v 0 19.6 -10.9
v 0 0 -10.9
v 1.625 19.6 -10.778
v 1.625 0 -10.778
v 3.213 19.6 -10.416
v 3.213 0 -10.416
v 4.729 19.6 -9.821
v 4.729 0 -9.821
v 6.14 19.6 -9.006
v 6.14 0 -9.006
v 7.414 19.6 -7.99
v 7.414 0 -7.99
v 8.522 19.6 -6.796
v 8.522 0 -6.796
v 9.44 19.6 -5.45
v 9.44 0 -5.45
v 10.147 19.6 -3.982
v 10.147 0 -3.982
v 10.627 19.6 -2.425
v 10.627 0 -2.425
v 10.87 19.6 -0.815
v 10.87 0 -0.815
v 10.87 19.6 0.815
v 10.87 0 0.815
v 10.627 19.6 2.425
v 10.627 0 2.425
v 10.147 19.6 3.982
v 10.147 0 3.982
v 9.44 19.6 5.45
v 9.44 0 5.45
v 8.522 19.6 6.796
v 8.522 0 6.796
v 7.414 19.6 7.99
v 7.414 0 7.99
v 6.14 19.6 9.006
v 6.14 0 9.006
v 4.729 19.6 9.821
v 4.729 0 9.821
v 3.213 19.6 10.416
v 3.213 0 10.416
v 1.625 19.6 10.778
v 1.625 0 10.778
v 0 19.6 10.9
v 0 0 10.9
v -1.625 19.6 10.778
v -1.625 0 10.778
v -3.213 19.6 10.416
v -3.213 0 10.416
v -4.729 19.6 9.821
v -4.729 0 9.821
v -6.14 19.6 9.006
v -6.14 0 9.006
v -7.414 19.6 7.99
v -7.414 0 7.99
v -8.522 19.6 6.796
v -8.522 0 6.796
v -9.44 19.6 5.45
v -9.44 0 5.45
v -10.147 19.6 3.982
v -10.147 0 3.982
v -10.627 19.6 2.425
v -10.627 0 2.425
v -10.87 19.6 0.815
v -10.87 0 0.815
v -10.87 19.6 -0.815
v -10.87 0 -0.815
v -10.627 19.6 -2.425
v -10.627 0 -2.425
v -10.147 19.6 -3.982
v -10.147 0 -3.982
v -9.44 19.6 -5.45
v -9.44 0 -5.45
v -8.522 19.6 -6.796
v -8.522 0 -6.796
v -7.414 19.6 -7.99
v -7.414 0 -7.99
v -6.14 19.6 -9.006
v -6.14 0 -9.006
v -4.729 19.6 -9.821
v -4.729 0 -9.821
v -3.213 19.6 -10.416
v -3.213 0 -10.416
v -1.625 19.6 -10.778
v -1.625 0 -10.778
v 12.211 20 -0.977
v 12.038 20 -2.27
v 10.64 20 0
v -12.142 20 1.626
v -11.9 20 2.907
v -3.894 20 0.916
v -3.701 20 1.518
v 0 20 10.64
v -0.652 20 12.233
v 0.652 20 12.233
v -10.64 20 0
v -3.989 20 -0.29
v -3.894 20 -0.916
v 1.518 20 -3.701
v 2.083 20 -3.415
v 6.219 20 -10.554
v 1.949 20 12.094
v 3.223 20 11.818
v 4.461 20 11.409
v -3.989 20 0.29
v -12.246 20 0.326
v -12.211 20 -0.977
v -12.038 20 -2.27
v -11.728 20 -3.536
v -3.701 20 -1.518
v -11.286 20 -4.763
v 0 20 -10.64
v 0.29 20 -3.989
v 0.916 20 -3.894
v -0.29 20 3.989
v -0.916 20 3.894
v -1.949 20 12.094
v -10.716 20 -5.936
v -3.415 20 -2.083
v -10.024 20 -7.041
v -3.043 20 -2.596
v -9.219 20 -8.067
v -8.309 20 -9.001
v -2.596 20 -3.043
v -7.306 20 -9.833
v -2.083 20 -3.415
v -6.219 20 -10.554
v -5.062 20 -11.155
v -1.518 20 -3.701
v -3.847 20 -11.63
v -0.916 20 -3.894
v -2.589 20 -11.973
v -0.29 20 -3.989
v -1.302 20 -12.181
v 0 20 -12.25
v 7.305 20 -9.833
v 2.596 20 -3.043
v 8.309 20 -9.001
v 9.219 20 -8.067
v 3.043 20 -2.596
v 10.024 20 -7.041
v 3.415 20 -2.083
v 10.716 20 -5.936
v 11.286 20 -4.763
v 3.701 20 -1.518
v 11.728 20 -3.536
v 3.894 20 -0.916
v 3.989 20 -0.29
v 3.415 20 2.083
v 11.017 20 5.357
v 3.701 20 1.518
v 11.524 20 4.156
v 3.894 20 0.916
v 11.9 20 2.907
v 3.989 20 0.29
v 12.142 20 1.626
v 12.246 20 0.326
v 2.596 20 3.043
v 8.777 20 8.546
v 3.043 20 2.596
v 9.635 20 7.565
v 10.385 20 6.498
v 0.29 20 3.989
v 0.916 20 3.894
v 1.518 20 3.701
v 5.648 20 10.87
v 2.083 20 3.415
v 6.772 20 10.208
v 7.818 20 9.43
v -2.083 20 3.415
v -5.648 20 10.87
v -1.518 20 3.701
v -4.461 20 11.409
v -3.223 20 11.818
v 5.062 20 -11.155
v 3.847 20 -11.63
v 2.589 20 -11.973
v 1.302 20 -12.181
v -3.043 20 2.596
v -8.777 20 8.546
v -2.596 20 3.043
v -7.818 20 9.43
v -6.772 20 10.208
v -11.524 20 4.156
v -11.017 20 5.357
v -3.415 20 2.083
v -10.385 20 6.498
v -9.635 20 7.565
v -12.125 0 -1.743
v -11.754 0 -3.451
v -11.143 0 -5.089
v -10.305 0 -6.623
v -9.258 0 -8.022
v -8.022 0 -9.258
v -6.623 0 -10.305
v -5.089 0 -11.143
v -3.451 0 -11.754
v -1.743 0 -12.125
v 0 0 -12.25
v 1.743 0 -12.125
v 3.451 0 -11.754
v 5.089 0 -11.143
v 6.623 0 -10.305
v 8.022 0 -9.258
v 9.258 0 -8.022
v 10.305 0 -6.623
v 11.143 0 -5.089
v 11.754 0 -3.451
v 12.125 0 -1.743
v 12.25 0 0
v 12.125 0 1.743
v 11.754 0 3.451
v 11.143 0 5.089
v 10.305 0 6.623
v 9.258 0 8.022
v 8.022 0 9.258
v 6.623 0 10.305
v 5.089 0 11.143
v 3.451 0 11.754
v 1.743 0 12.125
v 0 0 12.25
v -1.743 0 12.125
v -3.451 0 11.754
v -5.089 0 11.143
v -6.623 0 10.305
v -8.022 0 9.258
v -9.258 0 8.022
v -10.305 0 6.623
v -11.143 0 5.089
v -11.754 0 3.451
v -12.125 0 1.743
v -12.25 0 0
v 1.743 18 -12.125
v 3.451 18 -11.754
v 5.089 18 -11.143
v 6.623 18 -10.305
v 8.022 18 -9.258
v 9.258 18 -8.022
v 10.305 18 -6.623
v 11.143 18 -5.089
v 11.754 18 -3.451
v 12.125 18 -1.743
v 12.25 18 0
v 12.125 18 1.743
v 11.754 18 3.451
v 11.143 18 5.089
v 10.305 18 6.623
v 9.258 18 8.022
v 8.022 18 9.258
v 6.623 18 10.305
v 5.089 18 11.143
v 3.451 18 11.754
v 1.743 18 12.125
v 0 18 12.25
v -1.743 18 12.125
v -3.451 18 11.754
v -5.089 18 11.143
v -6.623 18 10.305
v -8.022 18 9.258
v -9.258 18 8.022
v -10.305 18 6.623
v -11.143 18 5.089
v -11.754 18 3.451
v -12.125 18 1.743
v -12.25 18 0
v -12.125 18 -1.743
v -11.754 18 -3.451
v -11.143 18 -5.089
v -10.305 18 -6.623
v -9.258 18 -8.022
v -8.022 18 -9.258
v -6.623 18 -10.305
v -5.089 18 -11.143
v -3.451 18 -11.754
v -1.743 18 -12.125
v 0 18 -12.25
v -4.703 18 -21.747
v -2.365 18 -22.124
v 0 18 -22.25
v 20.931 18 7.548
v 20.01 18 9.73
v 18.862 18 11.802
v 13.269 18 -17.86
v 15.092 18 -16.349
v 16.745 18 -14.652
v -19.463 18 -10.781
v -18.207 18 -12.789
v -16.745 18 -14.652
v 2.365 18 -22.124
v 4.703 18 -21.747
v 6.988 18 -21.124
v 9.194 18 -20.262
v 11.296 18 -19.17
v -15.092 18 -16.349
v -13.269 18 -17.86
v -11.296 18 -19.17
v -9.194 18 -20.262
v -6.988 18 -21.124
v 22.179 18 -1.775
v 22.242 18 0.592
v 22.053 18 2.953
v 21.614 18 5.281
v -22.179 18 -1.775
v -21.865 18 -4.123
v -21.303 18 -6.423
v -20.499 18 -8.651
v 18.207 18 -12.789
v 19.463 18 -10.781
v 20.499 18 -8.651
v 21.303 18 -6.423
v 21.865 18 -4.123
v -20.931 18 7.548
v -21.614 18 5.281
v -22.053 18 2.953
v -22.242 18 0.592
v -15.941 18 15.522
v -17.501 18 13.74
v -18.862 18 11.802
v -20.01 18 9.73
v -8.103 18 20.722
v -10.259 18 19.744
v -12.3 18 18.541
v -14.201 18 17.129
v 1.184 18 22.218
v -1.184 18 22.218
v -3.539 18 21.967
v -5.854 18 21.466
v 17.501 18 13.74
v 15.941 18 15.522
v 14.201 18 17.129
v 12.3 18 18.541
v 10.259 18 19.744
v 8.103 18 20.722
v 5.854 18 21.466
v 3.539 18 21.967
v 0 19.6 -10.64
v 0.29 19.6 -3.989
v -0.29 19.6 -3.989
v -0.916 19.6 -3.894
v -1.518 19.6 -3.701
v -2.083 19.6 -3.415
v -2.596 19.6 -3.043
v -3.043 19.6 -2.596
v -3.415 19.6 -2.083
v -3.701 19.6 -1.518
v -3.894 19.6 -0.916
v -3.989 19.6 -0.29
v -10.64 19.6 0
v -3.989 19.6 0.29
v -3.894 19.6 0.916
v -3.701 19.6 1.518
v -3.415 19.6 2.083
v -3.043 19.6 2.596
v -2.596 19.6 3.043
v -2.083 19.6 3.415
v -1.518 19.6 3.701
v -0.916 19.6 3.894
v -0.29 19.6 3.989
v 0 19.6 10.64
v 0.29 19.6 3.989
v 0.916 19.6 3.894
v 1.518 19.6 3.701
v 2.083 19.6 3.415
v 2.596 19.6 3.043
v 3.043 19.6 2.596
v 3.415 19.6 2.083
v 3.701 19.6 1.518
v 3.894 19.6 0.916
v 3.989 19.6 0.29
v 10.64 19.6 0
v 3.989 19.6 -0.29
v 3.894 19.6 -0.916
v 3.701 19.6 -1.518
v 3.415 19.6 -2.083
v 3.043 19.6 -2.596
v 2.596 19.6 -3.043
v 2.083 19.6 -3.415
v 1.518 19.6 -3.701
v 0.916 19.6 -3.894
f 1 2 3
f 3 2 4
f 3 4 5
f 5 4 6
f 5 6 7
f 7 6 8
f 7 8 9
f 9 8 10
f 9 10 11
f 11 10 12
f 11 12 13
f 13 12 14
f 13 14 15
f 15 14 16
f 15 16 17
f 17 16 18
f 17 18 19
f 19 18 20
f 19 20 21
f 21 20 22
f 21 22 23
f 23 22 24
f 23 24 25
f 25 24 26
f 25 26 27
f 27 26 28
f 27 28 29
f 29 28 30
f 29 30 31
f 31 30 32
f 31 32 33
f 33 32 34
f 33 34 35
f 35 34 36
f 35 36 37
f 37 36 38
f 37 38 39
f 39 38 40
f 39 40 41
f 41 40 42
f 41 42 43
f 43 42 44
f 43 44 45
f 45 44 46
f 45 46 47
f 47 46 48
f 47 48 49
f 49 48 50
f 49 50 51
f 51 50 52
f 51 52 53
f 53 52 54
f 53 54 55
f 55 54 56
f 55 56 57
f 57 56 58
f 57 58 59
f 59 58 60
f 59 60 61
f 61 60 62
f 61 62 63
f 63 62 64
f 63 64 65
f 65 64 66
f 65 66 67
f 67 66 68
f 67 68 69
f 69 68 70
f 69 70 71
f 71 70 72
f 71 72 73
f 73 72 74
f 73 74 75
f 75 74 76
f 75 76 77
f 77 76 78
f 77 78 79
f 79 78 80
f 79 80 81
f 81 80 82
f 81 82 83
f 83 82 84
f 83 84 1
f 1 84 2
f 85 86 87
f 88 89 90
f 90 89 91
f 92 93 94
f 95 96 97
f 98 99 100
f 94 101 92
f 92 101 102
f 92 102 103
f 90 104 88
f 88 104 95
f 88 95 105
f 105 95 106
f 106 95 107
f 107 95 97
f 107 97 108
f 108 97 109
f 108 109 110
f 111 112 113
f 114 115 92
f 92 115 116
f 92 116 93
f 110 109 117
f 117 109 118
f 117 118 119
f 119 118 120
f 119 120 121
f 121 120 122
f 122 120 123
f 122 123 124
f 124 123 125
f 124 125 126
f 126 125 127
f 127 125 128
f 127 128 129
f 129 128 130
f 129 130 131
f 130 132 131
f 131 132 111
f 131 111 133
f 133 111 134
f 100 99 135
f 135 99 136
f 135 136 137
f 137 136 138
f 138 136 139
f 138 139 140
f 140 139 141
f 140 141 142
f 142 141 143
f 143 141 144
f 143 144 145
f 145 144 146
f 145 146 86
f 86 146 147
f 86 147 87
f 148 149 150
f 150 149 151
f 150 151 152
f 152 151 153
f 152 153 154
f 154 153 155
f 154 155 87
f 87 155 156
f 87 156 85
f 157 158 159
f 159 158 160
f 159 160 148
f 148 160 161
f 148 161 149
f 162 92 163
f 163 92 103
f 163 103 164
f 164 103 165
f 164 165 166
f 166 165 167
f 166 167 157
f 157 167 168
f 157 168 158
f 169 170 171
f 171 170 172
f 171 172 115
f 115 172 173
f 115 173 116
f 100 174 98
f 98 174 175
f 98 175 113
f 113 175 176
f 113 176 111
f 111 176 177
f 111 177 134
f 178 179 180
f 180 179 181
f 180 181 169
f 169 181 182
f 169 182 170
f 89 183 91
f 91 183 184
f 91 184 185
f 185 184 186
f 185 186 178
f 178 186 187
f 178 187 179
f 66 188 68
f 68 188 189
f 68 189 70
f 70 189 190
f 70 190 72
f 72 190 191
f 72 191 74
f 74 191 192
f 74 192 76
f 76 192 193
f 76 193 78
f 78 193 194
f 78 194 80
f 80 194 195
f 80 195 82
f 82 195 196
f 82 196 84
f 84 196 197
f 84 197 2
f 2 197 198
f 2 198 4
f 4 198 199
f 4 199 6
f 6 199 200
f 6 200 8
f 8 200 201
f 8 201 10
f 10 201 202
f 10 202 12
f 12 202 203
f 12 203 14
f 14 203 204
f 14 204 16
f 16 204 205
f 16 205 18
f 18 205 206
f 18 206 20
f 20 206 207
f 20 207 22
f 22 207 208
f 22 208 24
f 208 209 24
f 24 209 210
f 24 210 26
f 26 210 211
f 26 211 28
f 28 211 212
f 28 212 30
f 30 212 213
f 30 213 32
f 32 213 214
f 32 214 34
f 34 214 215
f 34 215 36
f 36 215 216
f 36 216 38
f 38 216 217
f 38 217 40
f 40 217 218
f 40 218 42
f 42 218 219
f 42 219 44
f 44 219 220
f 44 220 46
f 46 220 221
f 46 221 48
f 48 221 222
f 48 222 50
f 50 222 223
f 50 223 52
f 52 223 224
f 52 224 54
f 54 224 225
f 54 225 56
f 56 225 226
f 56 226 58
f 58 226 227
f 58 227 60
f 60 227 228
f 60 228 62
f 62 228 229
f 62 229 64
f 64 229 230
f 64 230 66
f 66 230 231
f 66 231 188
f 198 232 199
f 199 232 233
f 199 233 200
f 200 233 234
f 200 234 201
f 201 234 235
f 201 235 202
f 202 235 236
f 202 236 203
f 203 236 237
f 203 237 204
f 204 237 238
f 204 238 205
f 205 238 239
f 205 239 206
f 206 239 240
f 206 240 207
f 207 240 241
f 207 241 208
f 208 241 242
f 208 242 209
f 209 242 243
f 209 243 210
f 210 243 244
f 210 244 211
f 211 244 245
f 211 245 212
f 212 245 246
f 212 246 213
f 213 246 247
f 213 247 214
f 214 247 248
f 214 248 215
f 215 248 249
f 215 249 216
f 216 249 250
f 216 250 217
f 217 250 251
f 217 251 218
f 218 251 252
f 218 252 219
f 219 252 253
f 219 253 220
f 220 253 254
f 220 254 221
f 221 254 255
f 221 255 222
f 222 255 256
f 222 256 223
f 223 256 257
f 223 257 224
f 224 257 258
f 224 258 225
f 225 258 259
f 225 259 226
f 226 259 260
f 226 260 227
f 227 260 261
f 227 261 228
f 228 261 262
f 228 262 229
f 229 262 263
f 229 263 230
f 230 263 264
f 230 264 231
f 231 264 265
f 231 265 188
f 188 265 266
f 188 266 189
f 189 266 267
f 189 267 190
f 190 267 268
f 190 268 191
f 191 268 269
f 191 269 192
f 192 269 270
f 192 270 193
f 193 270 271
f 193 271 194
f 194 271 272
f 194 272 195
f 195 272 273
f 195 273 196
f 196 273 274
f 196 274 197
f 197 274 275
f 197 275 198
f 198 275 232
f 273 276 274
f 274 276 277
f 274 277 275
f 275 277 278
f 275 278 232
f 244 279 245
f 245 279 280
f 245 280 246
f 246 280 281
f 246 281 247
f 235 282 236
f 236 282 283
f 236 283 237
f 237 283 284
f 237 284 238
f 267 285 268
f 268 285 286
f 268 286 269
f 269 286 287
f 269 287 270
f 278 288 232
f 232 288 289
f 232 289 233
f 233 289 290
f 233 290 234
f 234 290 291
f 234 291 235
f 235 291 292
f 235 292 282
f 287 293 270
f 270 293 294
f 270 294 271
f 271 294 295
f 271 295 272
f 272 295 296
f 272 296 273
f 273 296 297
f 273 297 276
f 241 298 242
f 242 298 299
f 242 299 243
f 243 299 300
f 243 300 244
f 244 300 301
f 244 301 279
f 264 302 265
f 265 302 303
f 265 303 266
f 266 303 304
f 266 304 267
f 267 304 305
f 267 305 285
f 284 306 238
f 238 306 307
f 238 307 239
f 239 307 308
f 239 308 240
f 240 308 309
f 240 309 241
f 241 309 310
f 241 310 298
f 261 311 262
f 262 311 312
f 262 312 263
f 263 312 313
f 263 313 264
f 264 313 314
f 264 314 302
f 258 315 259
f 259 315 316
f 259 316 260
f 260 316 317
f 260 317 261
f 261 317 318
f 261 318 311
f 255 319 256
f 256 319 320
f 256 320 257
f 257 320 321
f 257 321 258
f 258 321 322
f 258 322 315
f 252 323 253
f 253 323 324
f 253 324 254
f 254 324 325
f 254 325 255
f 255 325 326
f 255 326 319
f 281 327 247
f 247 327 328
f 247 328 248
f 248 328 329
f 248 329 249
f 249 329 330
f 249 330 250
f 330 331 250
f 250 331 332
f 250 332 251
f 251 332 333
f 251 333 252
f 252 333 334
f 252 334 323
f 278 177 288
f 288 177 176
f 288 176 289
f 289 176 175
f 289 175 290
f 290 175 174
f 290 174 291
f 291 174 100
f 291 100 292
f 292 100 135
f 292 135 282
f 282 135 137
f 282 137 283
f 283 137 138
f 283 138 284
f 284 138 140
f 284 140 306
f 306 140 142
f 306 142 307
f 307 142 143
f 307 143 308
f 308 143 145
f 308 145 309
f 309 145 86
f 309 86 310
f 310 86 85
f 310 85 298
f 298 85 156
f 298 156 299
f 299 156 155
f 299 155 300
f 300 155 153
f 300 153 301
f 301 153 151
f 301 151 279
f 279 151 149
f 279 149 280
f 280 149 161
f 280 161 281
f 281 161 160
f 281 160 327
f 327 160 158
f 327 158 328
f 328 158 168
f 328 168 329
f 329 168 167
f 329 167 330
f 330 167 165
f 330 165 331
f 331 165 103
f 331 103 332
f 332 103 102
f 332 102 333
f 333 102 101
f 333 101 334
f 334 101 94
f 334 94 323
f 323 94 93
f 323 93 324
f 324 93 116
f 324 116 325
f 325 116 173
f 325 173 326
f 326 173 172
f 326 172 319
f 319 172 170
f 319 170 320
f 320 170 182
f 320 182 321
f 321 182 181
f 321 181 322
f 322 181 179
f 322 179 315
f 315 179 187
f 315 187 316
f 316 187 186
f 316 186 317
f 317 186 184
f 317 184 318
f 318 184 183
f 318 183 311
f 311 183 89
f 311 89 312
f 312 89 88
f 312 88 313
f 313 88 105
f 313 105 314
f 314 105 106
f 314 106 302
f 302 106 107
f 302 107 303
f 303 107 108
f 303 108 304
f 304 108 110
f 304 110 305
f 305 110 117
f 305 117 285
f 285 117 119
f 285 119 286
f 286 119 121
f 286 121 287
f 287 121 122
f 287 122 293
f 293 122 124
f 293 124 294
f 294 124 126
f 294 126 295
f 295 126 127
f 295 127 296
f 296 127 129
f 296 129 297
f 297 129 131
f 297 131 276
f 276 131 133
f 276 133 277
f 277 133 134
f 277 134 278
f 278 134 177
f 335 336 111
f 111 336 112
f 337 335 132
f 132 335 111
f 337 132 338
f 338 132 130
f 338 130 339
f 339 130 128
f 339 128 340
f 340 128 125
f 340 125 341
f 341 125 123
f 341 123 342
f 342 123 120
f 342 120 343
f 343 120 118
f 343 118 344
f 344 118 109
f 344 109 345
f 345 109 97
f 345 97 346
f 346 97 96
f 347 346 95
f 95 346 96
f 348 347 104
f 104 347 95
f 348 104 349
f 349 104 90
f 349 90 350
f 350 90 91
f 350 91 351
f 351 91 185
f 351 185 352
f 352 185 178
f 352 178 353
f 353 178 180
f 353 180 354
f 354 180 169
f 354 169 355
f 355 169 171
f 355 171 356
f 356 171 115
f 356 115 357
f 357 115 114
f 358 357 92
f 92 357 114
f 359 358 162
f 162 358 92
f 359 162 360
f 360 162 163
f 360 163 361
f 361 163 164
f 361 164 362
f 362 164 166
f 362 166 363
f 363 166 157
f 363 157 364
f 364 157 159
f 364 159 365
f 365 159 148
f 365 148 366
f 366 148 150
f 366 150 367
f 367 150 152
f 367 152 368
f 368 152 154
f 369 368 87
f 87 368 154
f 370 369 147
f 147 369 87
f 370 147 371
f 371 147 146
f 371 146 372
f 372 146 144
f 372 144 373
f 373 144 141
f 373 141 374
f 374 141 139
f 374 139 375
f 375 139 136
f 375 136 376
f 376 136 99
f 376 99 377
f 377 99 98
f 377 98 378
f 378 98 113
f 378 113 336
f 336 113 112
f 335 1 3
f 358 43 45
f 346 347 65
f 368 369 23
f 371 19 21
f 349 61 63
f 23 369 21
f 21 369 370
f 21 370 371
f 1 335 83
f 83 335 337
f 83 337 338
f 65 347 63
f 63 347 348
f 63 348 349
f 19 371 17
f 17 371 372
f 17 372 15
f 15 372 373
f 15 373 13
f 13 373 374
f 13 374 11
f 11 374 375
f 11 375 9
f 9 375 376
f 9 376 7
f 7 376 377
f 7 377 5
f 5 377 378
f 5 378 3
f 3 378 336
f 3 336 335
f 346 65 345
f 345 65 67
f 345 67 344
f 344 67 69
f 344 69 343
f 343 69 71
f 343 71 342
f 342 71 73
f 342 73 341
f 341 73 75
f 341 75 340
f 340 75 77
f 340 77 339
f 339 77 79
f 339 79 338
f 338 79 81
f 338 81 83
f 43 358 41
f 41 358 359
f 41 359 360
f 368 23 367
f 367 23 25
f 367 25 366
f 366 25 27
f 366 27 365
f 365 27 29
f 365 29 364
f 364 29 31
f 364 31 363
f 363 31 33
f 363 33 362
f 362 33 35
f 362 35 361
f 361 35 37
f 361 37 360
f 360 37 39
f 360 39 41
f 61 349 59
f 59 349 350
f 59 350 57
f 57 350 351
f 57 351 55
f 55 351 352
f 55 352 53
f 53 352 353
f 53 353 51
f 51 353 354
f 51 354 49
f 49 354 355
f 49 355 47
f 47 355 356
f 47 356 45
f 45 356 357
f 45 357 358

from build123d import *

# Parameters (mm, degrees)
SALIENTE_EXTRUIR2_DEPTH = 0.4


with BuildPart() as part:
    # Croquis1 → Revolución1 (revolve)
    with BuildSketch(Plane.XY):
        Polygon((-10.9, 20), (-10.9, 0), (-12.25, 0), (-12.25, 18), (-22.25, 18), (-12.25, 20), align=None)
    revolve(axis=Axis((0, 0, 0), (0, 1, 0)))

    # Croquis3 → Saliente-Extruir2 (add)
    with BuildSketch(Plane(origin=(0, 20, 0), x_dir=(1, 0, 0), z_dir=(0, 1, 0))):
        with BuildLine():
            ThreePointArc((10.9, 0), (7.707463915, -7.707463915), (0, -10.9))
            ThreePointArc((0, -10.9), (-7.707463915, -7.707463915), (-10.9, 0))
            ThreePointArc((-10.9, 0), (-7.707463915, 7.707463915), (0, 10.9))
            ThreePointArc((0, 10.9), (7.707463915, 7.707463915), (10.9, 0))
        make_face()
        with BuildLine():
            Line((0.290070904, -3.989468495), (0, -10.639817501))
            Line((0, -10.639817501), (-0.290070904, -3.989468495))
            ThreePointArc((-0.290070904, -3.989468495), (-2.828427125, -2.828427125), (-3.989468495, -0.290070904))
            Line((-3.989468495, -0.290070904), (-10.639817501, 0))
            Line((-10.639817501, 0), (-3.989468495, 0.290070904))
            ThreePointArc((-3.989468495, 0.290070904), (-2.828427125, 2.828427125), (-0.290070904, 3.989468495))
            Line((-0.290070904, 3.989468495), (0, 10.639817501))
            Line((0, 10.639817501), (0.290070904, 3.989468495))
            ThreePointArc((0.290070904, 3.989468495), (2.828427125, 2.828427125), (3.989468495, 0.290070904))
            Line((3.989468495, 0.290070904), (10.639817501, 0))
            Line((10.639817501, 0), (3.989468495, -0.290070904))
            ThreePointArc((3.989468495, -0.290070904), (2.828427125, -2.828427125), (0.290070904, -3.989468495))
        make_face(mode=Mode.SUBTRACT)
    extrude(amount=-SALIENTE_EXTRUIR2_DEPTH)


solid = part.part
